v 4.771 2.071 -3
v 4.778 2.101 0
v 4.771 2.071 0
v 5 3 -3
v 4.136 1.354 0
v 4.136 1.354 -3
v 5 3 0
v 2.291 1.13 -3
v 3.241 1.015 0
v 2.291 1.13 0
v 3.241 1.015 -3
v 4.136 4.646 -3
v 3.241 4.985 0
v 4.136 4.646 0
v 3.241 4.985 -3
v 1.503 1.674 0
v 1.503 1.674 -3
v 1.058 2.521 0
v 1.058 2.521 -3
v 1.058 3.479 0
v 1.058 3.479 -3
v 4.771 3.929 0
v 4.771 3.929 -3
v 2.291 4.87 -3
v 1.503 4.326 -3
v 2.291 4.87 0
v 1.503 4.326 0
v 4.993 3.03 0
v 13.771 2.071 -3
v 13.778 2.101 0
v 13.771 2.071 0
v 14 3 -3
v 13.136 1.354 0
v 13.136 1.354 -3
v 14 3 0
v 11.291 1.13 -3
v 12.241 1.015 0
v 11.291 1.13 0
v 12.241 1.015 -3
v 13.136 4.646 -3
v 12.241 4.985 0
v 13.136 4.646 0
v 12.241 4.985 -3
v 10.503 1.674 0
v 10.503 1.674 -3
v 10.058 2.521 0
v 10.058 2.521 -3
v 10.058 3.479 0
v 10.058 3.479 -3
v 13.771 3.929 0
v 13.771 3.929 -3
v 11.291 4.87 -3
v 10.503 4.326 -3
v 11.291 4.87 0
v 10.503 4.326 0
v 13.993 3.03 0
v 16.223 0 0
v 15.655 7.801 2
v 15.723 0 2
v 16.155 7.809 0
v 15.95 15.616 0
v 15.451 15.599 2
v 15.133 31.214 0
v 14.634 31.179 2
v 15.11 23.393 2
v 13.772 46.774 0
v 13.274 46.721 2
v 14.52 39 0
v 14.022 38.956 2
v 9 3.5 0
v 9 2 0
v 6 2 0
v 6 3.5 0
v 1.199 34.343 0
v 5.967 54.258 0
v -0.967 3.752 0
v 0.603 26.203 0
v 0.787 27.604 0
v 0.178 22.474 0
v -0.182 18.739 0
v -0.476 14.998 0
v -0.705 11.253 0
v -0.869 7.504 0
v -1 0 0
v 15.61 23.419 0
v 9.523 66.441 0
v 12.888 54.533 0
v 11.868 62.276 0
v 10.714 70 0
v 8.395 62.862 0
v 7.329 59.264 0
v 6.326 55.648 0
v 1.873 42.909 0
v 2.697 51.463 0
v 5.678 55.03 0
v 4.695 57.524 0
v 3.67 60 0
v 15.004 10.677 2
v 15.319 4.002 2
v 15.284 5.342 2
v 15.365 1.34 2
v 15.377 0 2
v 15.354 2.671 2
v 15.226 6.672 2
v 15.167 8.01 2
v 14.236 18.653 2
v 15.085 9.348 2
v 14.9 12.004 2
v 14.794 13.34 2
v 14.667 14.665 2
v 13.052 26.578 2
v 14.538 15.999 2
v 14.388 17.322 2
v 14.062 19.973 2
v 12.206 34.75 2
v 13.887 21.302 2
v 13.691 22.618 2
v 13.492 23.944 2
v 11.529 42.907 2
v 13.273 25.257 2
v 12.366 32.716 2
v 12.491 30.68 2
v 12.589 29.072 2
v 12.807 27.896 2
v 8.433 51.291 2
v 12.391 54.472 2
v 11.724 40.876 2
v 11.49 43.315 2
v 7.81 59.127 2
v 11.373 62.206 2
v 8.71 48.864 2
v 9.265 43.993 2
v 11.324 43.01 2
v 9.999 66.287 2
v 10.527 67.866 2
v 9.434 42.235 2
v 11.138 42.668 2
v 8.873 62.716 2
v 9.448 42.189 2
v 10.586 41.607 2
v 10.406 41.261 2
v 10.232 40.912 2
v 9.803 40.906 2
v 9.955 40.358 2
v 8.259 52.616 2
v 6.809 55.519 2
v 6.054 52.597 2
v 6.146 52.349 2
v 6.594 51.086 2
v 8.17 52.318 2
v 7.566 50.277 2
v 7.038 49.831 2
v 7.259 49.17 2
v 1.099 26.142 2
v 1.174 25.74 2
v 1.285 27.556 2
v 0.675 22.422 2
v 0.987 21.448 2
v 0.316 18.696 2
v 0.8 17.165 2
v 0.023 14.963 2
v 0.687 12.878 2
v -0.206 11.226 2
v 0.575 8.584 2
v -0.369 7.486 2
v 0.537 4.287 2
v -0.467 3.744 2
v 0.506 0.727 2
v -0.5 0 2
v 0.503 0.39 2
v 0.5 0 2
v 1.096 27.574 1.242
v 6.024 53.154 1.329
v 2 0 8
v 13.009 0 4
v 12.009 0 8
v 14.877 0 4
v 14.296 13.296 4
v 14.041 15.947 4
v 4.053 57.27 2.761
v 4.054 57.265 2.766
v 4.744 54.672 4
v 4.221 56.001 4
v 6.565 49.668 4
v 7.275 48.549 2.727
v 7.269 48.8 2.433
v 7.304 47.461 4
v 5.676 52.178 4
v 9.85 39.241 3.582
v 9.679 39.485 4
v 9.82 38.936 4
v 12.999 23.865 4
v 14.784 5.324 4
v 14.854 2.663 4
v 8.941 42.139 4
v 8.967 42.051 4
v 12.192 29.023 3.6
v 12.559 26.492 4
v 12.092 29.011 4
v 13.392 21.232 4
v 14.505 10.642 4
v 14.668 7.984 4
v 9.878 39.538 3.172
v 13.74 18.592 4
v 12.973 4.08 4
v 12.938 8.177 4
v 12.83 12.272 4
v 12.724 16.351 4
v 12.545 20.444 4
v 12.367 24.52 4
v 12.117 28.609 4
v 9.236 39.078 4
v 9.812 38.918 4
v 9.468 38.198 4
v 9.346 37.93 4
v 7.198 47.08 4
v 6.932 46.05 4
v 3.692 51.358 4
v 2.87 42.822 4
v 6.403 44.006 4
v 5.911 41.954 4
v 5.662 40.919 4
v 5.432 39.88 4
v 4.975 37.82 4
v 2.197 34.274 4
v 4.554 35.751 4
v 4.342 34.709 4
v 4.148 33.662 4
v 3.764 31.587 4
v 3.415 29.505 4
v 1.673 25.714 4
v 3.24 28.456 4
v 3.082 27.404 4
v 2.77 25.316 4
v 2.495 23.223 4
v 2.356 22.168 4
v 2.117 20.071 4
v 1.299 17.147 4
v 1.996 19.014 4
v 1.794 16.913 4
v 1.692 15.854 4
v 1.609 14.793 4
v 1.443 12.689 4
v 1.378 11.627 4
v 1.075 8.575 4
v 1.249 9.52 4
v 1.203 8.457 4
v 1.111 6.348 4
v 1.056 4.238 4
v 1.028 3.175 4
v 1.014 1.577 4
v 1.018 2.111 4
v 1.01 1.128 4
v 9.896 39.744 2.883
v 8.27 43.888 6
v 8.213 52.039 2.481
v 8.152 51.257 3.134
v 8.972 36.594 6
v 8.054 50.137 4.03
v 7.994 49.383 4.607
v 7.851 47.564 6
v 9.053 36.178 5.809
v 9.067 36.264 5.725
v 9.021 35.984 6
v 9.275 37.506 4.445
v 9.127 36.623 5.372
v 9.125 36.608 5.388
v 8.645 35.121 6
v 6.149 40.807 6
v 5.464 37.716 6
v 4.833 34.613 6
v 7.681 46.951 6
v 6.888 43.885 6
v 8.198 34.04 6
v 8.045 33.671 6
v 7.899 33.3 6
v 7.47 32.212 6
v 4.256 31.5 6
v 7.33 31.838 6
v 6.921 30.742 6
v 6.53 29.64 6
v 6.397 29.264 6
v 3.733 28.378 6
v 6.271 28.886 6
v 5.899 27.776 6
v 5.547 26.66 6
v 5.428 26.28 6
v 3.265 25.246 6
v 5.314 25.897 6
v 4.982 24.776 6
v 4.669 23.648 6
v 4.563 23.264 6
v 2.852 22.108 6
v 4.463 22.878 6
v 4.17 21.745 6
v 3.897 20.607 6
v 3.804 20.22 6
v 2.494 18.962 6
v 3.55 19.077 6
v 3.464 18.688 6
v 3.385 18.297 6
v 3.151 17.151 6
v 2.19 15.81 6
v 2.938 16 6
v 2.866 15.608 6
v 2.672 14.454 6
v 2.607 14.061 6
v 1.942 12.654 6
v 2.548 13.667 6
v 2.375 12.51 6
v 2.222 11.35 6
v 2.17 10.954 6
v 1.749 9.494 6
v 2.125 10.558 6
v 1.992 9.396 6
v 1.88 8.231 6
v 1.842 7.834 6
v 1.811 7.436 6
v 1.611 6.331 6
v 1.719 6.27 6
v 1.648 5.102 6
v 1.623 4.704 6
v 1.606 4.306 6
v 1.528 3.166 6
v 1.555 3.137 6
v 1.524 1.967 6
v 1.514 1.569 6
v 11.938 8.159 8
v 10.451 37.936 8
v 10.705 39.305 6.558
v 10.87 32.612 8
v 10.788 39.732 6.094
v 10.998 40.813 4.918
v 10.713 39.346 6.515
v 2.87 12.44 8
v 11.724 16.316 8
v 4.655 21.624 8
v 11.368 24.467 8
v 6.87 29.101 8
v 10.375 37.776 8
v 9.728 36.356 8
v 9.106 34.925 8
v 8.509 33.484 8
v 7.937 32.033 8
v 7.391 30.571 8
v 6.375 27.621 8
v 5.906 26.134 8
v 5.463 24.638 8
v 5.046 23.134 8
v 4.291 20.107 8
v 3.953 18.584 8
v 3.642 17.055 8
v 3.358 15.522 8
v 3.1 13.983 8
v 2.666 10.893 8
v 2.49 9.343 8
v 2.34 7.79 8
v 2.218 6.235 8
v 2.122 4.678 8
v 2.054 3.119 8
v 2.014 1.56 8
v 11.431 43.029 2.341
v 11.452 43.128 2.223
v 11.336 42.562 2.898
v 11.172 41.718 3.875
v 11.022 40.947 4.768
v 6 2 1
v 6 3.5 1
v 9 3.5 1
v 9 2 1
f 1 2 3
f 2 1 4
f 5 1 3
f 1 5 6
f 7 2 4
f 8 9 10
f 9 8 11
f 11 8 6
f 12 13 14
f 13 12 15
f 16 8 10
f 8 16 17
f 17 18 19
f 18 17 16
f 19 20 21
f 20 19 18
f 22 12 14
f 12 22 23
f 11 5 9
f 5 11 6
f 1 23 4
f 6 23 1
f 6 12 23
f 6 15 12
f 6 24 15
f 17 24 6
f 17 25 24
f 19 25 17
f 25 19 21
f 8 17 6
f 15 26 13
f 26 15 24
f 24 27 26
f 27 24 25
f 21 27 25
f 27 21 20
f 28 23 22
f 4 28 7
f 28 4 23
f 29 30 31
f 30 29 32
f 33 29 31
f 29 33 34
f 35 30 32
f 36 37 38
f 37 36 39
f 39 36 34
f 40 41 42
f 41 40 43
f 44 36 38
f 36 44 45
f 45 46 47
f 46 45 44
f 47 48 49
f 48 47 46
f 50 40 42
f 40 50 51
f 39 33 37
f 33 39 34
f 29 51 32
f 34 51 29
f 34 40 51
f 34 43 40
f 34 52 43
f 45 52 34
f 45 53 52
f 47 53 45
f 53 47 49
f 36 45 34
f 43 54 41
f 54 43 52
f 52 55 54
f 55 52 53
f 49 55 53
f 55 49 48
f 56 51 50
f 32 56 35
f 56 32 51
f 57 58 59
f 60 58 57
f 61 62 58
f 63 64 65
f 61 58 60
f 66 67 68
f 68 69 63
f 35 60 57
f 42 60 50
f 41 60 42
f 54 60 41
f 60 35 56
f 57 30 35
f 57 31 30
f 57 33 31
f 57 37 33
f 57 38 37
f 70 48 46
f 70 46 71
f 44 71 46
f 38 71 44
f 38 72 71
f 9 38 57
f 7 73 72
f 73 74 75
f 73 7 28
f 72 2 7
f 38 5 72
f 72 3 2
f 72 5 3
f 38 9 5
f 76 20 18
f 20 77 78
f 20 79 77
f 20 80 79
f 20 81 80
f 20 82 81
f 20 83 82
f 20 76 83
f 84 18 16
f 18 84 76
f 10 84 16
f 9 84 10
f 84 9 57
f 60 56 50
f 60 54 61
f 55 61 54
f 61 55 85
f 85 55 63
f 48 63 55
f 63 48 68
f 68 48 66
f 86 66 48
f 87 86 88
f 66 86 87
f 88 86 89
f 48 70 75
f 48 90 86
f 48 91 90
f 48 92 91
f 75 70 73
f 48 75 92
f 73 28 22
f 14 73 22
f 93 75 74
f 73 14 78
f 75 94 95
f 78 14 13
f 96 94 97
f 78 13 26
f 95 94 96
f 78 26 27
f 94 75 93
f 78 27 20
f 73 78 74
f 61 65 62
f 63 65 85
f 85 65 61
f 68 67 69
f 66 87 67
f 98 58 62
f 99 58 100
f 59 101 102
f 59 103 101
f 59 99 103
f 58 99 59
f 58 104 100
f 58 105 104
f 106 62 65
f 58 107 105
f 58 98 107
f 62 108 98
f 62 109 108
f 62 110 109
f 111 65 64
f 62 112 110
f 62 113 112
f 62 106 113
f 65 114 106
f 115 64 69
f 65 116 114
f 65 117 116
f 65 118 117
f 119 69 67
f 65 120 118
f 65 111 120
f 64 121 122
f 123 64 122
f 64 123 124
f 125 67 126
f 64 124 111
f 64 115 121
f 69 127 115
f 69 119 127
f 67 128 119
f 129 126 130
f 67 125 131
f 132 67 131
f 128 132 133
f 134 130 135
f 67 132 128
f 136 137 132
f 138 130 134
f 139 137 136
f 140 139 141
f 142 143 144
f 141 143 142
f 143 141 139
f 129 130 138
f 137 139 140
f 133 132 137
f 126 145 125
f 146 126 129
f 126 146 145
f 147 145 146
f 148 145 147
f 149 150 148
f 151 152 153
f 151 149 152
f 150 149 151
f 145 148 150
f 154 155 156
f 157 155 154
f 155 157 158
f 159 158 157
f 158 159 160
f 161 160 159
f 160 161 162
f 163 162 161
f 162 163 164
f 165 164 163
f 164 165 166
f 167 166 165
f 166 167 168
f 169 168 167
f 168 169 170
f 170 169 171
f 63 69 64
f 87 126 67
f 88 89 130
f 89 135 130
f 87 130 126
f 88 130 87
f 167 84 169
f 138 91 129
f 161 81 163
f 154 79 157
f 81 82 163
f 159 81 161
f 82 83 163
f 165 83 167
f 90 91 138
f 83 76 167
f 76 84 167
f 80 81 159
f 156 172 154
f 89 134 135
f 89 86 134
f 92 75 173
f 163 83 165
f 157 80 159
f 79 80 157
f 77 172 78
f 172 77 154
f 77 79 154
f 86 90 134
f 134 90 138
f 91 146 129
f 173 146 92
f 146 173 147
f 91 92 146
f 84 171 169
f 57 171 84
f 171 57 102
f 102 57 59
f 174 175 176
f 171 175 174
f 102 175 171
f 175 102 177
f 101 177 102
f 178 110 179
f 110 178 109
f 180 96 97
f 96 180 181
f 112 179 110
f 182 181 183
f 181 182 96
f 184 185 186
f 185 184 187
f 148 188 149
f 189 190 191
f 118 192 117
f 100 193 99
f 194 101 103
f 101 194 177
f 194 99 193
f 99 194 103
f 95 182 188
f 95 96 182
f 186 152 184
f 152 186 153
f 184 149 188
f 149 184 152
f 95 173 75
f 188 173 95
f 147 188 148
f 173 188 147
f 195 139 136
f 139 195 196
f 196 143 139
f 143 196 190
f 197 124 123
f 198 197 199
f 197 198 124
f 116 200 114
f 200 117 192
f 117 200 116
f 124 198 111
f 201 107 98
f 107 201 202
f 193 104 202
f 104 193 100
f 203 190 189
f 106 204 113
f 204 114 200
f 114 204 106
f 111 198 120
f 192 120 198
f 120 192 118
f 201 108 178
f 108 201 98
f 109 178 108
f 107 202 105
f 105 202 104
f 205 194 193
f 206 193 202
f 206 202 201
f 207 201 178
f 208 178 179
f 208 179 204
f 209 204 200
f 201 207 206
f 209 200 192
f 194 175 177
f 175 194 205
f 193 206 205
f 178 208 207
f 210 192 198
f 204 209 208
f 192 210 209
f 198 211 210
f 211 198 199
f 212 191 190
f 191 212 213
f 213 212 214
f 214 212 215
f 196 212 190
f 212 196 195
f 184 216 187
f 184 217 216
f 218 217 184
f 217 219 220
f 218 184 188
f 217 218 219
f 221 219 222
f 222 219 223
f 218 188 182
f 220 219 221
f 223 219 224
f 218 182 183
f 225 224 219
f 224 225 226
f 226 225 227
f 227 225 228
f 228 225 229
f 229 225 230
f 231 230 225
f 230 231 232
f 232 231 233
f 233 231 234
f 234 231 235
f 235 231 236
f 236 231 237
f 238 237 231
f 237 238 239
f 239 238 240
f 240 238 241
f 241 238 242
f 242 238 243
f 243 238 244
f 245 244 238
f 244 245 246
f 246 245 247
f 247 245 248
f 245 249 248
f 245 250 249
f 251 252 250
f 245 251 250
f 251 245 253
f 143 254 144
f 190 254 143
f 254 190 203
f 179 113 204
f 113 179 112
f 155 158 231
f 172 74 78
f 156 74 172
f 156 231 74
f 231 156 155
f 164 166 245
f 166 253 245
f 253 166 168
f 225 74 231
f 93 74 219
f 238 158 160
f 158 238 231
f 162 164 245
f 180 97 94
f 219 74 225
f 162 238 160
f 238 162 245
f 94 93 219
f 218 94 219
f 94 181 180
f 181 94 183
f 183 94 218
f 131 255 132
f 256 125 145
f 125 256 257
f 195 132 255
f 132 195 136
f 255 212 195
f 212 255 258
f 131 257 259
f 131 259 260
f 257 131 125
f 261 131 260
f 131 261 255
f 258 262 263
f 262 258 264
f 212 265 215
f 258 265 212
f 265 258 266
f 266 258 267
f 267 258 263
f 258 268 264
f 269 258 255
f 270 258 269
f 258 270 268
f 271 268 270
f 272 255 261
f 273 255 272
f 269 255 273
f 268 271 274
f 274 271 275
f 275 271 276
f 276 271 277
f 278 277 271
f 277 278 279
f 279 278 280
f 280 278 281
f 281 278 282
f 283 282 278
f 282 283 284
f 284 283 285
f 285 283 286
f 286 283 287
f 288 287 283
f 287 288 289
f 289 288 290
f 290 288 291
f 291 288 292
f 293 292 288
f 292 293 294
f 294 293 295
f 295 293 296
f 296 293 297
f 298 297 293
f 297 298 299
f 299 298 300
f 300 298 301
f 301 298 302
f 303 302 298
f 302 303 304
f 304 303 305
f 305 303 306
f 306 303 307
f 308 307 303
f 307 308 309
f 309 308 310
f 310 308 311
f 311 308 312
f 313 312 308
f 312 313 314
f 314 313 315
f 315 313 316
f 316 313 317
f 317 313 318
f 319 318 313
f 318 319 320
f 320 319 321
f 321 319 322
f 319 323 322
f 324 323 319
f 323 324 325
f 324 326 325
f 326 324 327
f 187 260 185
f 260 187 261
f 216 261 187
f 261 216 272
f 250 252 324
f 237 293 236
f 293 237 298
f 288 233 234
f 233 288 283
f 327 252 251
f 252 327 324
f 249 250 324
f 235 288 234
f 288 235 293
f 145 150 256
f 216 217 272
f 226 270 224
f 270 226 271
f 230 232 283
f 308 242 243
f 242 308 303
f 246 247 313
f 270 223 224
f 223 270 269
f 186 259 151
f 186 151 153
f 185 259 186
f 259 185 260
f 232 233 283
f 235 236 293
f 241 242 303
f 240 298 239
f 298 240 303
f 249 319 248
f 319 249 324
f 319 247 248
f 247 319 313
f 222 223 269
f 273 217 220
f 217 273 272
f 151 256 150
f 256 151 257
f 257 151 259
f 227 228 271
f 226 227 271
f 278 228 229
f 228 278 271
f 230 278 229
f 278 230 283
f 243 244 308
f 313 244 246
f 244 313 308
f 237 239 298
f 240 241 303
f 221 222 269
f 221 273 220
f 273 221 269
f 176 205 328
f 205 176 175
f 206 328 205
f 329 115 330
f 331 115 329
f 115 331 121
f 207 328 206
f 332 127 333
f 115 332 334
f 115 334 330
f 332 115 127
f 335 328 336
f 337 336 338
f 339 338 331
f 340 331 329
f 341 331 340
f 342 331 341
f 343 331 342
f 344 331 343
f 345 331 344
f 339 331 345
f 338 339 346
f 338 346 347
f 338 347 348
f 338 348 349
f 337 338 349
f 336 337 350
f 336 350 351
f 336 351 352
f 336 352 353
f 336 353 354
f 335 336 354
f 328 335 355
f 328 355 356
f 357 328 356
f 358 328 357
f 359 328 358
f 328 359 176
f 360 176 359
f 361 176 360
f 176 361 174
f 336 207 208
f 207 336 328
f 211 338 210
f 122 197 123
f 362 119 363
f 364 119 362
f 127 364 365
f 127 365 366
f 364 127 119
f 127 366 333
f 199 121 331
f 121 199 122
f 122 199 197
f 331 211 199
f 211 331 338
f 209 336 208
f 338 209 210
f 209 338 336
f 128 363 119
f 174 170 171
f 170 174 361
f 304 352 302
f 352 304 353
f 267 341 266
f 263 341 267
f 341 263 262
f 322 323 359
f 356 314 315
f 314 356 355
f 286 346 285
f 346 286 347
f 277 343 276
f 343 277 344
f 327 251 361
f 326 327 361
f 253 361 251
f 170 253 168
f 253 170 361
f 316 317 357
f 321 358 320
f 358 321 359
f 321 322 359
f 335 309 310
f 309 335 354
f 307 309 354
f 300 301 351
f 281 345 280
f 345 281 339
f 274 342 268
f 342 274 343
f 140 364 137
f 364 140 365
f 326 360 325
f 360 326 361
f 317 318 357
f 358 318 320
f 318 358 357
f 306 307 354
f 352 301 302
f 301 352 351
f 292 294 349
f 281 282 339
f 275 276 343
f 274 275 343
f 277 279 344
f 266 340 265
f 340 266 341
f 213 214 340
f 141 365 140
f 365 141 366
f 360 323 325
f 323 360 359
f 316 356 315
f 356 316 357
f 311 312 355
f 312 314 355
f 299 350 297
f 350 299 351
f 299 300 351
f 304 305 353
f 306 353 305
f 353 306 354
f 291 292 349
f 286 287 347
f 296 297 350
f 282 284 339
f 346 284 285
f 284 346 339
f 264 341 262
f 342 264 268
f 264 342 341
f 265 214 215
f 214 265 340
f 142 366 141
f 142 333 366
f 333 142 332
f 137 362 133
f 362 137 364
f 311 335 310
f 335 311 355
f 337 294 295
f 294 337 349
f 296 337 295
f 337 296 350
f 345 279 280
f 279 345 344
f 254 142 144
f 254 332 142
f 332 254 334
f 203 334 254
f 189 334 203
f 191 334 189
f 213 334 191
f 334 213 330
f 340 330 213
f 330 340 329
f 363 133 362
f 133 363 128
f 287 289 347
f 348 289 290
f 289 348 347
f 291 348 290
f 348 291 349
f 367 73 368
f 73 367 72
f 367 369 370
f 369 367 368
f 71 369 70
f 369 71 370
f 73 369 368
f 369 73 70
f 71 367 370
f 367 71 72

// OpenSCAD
// OpenSCAD model for a single Disco Wookie hair

// === please wrap at 80 cols ==================================================

// Precision for rounded stuff.
$fa = 1;  // smallest angle to use for circles
$fs = 1;  // smallest size edge in a circle

// Constants:
//
// Units are in mm.

HAIR_WIDTH = 15;
HAIR_LENGTH = 75;
HAIR_DEPTH = 2;

PILLAR_DIAMETER = 2;
// How long the pillars extend below the surface.
PILLAR_DEPTH = 3;
// Offset to center from the top (width) edge.
PILLAR_OFFSET_TOP = 3;
// Offset to center from the side (length) edge.
PILLAR_OFFSET_SIDE = 3;

// For now, LEDs are just rectangles.
// TODO: make them be rectangle + half-circle shaped.
LED_WIDTH = 3;
LED_LENGTH = 1.5;
LED_DEPTH = 1;
// Offset from the "top" edge.
LED_OFFSET = 2;

// Color to use for demo renderings.
WOOKIE_BROWN = [0.52, 0.35, 0.24];

// Rounded rectangle base.
module Structure() {
  cube(size=[HAIR_WIDTH, HAIR_LENGTH - HAIR_WIDTH / 2, HAIR_DEPTH]);
  // Rounded end.
  translate([HAIR_WIDTH / 2, HAIR_LENGTH - HAIR_WIDTH / 2, 0])
    cylinder(h=HAIR_DEPTH, r=HAIR_WIDTH/2);
}

// Produces a shape resembling a tuft of hair, using two circular edges and one
// flat edge. Arguments:
//
//   - length is the distance from base to tip
//   - tipSpan is the interior angle between edges at the tip of the tuft
//   - tipDirection is the average angle of the edges at the tip, relative to y
//   - height is the constant height of the whole shape
//
// tipSpan must be in the open range (0, 180) and tipDirection must be less than
// tipSpan / 2. If tipSpan is over 90, part of the curve may protrude beyond
// the tip, meaning that length is not an overall bound.
module ConvexTuft(length = 60, height = 5, tipSpan = 30, tipDirection = 10) {
  bezel = height / 4;
  a = tipSpan / 2 + tipDirection;
  b = tipSpan / 2 - tipDirection;
  ra = length / sin(a);
  rb = length / sin(b);
  s = ra * cos(a) + rb * cos(b);
  translate([rb - s, 0, 0]) intersection() {
    cylinder(h = height, r1 = ra, r2 = ra - bezel);
    translate([s, 0, 0]) {
      cylinder(h = height, r1 = rb, r2 = rb - bezel);
    }
    cube([s, length, height]);
  }
}

// LED shape, used for subtracting.
module Led() {
  // Go a small delta below the surface to make difference work cleanly.
  translate([(HAIR_WIDTH - LED_WIDTH) / 2, LED_OFFSET, -0.1])
    cube(size=[LED_WIDTH, LED_LENGTH, LED_DEPTH + 0.1]);
}

// Two pillars, extending in the negative Z direction.
module Pillars() {
  for (x = [PILLAR_OFFSET_SIDE, HAIR_WIDTH - PILLAR_OFFSET_SIDE]) {
    // Small offset in Z to make unions work cleanly.
    translate([x, PILLAR_OFFSET_TOP, 0.1])
      rotate([180, 0, 0])
        cylinder(h=(PILLAR_DEPTH + 0.1), r=PILLAR_DIAMETER);
  }
}

// Draws a basic hair with pillars and LED hole.
module HairV0() {
  difference() {
    Structure();
    Led();
  }
  Pillars();
}

// Draws four overlapping tufts.
module HairV1() {
  difference() {
    color(WOOKIE_BROWN, 1) {
        // TODO(cody): automatically center tufts rather than manual adjustment.
        translate([-1, 0, 0])
          ConvexTuft(length = 70, height = 2, tipSpan = 28, tipDirection = -5);
        ConvexTuft(length = 60, height = 4, tipSpan = 30, tipDirection = 8);
        ConvexTuft(length = 55, height = 6, tipSpan = 25, tipDirection = -5);
        ConvexTuft(length = 45, height = 8, tipSpan = 35, tipDirection = -12);
        Pillars();
    }
    Led();
  }
}

HairV1();
